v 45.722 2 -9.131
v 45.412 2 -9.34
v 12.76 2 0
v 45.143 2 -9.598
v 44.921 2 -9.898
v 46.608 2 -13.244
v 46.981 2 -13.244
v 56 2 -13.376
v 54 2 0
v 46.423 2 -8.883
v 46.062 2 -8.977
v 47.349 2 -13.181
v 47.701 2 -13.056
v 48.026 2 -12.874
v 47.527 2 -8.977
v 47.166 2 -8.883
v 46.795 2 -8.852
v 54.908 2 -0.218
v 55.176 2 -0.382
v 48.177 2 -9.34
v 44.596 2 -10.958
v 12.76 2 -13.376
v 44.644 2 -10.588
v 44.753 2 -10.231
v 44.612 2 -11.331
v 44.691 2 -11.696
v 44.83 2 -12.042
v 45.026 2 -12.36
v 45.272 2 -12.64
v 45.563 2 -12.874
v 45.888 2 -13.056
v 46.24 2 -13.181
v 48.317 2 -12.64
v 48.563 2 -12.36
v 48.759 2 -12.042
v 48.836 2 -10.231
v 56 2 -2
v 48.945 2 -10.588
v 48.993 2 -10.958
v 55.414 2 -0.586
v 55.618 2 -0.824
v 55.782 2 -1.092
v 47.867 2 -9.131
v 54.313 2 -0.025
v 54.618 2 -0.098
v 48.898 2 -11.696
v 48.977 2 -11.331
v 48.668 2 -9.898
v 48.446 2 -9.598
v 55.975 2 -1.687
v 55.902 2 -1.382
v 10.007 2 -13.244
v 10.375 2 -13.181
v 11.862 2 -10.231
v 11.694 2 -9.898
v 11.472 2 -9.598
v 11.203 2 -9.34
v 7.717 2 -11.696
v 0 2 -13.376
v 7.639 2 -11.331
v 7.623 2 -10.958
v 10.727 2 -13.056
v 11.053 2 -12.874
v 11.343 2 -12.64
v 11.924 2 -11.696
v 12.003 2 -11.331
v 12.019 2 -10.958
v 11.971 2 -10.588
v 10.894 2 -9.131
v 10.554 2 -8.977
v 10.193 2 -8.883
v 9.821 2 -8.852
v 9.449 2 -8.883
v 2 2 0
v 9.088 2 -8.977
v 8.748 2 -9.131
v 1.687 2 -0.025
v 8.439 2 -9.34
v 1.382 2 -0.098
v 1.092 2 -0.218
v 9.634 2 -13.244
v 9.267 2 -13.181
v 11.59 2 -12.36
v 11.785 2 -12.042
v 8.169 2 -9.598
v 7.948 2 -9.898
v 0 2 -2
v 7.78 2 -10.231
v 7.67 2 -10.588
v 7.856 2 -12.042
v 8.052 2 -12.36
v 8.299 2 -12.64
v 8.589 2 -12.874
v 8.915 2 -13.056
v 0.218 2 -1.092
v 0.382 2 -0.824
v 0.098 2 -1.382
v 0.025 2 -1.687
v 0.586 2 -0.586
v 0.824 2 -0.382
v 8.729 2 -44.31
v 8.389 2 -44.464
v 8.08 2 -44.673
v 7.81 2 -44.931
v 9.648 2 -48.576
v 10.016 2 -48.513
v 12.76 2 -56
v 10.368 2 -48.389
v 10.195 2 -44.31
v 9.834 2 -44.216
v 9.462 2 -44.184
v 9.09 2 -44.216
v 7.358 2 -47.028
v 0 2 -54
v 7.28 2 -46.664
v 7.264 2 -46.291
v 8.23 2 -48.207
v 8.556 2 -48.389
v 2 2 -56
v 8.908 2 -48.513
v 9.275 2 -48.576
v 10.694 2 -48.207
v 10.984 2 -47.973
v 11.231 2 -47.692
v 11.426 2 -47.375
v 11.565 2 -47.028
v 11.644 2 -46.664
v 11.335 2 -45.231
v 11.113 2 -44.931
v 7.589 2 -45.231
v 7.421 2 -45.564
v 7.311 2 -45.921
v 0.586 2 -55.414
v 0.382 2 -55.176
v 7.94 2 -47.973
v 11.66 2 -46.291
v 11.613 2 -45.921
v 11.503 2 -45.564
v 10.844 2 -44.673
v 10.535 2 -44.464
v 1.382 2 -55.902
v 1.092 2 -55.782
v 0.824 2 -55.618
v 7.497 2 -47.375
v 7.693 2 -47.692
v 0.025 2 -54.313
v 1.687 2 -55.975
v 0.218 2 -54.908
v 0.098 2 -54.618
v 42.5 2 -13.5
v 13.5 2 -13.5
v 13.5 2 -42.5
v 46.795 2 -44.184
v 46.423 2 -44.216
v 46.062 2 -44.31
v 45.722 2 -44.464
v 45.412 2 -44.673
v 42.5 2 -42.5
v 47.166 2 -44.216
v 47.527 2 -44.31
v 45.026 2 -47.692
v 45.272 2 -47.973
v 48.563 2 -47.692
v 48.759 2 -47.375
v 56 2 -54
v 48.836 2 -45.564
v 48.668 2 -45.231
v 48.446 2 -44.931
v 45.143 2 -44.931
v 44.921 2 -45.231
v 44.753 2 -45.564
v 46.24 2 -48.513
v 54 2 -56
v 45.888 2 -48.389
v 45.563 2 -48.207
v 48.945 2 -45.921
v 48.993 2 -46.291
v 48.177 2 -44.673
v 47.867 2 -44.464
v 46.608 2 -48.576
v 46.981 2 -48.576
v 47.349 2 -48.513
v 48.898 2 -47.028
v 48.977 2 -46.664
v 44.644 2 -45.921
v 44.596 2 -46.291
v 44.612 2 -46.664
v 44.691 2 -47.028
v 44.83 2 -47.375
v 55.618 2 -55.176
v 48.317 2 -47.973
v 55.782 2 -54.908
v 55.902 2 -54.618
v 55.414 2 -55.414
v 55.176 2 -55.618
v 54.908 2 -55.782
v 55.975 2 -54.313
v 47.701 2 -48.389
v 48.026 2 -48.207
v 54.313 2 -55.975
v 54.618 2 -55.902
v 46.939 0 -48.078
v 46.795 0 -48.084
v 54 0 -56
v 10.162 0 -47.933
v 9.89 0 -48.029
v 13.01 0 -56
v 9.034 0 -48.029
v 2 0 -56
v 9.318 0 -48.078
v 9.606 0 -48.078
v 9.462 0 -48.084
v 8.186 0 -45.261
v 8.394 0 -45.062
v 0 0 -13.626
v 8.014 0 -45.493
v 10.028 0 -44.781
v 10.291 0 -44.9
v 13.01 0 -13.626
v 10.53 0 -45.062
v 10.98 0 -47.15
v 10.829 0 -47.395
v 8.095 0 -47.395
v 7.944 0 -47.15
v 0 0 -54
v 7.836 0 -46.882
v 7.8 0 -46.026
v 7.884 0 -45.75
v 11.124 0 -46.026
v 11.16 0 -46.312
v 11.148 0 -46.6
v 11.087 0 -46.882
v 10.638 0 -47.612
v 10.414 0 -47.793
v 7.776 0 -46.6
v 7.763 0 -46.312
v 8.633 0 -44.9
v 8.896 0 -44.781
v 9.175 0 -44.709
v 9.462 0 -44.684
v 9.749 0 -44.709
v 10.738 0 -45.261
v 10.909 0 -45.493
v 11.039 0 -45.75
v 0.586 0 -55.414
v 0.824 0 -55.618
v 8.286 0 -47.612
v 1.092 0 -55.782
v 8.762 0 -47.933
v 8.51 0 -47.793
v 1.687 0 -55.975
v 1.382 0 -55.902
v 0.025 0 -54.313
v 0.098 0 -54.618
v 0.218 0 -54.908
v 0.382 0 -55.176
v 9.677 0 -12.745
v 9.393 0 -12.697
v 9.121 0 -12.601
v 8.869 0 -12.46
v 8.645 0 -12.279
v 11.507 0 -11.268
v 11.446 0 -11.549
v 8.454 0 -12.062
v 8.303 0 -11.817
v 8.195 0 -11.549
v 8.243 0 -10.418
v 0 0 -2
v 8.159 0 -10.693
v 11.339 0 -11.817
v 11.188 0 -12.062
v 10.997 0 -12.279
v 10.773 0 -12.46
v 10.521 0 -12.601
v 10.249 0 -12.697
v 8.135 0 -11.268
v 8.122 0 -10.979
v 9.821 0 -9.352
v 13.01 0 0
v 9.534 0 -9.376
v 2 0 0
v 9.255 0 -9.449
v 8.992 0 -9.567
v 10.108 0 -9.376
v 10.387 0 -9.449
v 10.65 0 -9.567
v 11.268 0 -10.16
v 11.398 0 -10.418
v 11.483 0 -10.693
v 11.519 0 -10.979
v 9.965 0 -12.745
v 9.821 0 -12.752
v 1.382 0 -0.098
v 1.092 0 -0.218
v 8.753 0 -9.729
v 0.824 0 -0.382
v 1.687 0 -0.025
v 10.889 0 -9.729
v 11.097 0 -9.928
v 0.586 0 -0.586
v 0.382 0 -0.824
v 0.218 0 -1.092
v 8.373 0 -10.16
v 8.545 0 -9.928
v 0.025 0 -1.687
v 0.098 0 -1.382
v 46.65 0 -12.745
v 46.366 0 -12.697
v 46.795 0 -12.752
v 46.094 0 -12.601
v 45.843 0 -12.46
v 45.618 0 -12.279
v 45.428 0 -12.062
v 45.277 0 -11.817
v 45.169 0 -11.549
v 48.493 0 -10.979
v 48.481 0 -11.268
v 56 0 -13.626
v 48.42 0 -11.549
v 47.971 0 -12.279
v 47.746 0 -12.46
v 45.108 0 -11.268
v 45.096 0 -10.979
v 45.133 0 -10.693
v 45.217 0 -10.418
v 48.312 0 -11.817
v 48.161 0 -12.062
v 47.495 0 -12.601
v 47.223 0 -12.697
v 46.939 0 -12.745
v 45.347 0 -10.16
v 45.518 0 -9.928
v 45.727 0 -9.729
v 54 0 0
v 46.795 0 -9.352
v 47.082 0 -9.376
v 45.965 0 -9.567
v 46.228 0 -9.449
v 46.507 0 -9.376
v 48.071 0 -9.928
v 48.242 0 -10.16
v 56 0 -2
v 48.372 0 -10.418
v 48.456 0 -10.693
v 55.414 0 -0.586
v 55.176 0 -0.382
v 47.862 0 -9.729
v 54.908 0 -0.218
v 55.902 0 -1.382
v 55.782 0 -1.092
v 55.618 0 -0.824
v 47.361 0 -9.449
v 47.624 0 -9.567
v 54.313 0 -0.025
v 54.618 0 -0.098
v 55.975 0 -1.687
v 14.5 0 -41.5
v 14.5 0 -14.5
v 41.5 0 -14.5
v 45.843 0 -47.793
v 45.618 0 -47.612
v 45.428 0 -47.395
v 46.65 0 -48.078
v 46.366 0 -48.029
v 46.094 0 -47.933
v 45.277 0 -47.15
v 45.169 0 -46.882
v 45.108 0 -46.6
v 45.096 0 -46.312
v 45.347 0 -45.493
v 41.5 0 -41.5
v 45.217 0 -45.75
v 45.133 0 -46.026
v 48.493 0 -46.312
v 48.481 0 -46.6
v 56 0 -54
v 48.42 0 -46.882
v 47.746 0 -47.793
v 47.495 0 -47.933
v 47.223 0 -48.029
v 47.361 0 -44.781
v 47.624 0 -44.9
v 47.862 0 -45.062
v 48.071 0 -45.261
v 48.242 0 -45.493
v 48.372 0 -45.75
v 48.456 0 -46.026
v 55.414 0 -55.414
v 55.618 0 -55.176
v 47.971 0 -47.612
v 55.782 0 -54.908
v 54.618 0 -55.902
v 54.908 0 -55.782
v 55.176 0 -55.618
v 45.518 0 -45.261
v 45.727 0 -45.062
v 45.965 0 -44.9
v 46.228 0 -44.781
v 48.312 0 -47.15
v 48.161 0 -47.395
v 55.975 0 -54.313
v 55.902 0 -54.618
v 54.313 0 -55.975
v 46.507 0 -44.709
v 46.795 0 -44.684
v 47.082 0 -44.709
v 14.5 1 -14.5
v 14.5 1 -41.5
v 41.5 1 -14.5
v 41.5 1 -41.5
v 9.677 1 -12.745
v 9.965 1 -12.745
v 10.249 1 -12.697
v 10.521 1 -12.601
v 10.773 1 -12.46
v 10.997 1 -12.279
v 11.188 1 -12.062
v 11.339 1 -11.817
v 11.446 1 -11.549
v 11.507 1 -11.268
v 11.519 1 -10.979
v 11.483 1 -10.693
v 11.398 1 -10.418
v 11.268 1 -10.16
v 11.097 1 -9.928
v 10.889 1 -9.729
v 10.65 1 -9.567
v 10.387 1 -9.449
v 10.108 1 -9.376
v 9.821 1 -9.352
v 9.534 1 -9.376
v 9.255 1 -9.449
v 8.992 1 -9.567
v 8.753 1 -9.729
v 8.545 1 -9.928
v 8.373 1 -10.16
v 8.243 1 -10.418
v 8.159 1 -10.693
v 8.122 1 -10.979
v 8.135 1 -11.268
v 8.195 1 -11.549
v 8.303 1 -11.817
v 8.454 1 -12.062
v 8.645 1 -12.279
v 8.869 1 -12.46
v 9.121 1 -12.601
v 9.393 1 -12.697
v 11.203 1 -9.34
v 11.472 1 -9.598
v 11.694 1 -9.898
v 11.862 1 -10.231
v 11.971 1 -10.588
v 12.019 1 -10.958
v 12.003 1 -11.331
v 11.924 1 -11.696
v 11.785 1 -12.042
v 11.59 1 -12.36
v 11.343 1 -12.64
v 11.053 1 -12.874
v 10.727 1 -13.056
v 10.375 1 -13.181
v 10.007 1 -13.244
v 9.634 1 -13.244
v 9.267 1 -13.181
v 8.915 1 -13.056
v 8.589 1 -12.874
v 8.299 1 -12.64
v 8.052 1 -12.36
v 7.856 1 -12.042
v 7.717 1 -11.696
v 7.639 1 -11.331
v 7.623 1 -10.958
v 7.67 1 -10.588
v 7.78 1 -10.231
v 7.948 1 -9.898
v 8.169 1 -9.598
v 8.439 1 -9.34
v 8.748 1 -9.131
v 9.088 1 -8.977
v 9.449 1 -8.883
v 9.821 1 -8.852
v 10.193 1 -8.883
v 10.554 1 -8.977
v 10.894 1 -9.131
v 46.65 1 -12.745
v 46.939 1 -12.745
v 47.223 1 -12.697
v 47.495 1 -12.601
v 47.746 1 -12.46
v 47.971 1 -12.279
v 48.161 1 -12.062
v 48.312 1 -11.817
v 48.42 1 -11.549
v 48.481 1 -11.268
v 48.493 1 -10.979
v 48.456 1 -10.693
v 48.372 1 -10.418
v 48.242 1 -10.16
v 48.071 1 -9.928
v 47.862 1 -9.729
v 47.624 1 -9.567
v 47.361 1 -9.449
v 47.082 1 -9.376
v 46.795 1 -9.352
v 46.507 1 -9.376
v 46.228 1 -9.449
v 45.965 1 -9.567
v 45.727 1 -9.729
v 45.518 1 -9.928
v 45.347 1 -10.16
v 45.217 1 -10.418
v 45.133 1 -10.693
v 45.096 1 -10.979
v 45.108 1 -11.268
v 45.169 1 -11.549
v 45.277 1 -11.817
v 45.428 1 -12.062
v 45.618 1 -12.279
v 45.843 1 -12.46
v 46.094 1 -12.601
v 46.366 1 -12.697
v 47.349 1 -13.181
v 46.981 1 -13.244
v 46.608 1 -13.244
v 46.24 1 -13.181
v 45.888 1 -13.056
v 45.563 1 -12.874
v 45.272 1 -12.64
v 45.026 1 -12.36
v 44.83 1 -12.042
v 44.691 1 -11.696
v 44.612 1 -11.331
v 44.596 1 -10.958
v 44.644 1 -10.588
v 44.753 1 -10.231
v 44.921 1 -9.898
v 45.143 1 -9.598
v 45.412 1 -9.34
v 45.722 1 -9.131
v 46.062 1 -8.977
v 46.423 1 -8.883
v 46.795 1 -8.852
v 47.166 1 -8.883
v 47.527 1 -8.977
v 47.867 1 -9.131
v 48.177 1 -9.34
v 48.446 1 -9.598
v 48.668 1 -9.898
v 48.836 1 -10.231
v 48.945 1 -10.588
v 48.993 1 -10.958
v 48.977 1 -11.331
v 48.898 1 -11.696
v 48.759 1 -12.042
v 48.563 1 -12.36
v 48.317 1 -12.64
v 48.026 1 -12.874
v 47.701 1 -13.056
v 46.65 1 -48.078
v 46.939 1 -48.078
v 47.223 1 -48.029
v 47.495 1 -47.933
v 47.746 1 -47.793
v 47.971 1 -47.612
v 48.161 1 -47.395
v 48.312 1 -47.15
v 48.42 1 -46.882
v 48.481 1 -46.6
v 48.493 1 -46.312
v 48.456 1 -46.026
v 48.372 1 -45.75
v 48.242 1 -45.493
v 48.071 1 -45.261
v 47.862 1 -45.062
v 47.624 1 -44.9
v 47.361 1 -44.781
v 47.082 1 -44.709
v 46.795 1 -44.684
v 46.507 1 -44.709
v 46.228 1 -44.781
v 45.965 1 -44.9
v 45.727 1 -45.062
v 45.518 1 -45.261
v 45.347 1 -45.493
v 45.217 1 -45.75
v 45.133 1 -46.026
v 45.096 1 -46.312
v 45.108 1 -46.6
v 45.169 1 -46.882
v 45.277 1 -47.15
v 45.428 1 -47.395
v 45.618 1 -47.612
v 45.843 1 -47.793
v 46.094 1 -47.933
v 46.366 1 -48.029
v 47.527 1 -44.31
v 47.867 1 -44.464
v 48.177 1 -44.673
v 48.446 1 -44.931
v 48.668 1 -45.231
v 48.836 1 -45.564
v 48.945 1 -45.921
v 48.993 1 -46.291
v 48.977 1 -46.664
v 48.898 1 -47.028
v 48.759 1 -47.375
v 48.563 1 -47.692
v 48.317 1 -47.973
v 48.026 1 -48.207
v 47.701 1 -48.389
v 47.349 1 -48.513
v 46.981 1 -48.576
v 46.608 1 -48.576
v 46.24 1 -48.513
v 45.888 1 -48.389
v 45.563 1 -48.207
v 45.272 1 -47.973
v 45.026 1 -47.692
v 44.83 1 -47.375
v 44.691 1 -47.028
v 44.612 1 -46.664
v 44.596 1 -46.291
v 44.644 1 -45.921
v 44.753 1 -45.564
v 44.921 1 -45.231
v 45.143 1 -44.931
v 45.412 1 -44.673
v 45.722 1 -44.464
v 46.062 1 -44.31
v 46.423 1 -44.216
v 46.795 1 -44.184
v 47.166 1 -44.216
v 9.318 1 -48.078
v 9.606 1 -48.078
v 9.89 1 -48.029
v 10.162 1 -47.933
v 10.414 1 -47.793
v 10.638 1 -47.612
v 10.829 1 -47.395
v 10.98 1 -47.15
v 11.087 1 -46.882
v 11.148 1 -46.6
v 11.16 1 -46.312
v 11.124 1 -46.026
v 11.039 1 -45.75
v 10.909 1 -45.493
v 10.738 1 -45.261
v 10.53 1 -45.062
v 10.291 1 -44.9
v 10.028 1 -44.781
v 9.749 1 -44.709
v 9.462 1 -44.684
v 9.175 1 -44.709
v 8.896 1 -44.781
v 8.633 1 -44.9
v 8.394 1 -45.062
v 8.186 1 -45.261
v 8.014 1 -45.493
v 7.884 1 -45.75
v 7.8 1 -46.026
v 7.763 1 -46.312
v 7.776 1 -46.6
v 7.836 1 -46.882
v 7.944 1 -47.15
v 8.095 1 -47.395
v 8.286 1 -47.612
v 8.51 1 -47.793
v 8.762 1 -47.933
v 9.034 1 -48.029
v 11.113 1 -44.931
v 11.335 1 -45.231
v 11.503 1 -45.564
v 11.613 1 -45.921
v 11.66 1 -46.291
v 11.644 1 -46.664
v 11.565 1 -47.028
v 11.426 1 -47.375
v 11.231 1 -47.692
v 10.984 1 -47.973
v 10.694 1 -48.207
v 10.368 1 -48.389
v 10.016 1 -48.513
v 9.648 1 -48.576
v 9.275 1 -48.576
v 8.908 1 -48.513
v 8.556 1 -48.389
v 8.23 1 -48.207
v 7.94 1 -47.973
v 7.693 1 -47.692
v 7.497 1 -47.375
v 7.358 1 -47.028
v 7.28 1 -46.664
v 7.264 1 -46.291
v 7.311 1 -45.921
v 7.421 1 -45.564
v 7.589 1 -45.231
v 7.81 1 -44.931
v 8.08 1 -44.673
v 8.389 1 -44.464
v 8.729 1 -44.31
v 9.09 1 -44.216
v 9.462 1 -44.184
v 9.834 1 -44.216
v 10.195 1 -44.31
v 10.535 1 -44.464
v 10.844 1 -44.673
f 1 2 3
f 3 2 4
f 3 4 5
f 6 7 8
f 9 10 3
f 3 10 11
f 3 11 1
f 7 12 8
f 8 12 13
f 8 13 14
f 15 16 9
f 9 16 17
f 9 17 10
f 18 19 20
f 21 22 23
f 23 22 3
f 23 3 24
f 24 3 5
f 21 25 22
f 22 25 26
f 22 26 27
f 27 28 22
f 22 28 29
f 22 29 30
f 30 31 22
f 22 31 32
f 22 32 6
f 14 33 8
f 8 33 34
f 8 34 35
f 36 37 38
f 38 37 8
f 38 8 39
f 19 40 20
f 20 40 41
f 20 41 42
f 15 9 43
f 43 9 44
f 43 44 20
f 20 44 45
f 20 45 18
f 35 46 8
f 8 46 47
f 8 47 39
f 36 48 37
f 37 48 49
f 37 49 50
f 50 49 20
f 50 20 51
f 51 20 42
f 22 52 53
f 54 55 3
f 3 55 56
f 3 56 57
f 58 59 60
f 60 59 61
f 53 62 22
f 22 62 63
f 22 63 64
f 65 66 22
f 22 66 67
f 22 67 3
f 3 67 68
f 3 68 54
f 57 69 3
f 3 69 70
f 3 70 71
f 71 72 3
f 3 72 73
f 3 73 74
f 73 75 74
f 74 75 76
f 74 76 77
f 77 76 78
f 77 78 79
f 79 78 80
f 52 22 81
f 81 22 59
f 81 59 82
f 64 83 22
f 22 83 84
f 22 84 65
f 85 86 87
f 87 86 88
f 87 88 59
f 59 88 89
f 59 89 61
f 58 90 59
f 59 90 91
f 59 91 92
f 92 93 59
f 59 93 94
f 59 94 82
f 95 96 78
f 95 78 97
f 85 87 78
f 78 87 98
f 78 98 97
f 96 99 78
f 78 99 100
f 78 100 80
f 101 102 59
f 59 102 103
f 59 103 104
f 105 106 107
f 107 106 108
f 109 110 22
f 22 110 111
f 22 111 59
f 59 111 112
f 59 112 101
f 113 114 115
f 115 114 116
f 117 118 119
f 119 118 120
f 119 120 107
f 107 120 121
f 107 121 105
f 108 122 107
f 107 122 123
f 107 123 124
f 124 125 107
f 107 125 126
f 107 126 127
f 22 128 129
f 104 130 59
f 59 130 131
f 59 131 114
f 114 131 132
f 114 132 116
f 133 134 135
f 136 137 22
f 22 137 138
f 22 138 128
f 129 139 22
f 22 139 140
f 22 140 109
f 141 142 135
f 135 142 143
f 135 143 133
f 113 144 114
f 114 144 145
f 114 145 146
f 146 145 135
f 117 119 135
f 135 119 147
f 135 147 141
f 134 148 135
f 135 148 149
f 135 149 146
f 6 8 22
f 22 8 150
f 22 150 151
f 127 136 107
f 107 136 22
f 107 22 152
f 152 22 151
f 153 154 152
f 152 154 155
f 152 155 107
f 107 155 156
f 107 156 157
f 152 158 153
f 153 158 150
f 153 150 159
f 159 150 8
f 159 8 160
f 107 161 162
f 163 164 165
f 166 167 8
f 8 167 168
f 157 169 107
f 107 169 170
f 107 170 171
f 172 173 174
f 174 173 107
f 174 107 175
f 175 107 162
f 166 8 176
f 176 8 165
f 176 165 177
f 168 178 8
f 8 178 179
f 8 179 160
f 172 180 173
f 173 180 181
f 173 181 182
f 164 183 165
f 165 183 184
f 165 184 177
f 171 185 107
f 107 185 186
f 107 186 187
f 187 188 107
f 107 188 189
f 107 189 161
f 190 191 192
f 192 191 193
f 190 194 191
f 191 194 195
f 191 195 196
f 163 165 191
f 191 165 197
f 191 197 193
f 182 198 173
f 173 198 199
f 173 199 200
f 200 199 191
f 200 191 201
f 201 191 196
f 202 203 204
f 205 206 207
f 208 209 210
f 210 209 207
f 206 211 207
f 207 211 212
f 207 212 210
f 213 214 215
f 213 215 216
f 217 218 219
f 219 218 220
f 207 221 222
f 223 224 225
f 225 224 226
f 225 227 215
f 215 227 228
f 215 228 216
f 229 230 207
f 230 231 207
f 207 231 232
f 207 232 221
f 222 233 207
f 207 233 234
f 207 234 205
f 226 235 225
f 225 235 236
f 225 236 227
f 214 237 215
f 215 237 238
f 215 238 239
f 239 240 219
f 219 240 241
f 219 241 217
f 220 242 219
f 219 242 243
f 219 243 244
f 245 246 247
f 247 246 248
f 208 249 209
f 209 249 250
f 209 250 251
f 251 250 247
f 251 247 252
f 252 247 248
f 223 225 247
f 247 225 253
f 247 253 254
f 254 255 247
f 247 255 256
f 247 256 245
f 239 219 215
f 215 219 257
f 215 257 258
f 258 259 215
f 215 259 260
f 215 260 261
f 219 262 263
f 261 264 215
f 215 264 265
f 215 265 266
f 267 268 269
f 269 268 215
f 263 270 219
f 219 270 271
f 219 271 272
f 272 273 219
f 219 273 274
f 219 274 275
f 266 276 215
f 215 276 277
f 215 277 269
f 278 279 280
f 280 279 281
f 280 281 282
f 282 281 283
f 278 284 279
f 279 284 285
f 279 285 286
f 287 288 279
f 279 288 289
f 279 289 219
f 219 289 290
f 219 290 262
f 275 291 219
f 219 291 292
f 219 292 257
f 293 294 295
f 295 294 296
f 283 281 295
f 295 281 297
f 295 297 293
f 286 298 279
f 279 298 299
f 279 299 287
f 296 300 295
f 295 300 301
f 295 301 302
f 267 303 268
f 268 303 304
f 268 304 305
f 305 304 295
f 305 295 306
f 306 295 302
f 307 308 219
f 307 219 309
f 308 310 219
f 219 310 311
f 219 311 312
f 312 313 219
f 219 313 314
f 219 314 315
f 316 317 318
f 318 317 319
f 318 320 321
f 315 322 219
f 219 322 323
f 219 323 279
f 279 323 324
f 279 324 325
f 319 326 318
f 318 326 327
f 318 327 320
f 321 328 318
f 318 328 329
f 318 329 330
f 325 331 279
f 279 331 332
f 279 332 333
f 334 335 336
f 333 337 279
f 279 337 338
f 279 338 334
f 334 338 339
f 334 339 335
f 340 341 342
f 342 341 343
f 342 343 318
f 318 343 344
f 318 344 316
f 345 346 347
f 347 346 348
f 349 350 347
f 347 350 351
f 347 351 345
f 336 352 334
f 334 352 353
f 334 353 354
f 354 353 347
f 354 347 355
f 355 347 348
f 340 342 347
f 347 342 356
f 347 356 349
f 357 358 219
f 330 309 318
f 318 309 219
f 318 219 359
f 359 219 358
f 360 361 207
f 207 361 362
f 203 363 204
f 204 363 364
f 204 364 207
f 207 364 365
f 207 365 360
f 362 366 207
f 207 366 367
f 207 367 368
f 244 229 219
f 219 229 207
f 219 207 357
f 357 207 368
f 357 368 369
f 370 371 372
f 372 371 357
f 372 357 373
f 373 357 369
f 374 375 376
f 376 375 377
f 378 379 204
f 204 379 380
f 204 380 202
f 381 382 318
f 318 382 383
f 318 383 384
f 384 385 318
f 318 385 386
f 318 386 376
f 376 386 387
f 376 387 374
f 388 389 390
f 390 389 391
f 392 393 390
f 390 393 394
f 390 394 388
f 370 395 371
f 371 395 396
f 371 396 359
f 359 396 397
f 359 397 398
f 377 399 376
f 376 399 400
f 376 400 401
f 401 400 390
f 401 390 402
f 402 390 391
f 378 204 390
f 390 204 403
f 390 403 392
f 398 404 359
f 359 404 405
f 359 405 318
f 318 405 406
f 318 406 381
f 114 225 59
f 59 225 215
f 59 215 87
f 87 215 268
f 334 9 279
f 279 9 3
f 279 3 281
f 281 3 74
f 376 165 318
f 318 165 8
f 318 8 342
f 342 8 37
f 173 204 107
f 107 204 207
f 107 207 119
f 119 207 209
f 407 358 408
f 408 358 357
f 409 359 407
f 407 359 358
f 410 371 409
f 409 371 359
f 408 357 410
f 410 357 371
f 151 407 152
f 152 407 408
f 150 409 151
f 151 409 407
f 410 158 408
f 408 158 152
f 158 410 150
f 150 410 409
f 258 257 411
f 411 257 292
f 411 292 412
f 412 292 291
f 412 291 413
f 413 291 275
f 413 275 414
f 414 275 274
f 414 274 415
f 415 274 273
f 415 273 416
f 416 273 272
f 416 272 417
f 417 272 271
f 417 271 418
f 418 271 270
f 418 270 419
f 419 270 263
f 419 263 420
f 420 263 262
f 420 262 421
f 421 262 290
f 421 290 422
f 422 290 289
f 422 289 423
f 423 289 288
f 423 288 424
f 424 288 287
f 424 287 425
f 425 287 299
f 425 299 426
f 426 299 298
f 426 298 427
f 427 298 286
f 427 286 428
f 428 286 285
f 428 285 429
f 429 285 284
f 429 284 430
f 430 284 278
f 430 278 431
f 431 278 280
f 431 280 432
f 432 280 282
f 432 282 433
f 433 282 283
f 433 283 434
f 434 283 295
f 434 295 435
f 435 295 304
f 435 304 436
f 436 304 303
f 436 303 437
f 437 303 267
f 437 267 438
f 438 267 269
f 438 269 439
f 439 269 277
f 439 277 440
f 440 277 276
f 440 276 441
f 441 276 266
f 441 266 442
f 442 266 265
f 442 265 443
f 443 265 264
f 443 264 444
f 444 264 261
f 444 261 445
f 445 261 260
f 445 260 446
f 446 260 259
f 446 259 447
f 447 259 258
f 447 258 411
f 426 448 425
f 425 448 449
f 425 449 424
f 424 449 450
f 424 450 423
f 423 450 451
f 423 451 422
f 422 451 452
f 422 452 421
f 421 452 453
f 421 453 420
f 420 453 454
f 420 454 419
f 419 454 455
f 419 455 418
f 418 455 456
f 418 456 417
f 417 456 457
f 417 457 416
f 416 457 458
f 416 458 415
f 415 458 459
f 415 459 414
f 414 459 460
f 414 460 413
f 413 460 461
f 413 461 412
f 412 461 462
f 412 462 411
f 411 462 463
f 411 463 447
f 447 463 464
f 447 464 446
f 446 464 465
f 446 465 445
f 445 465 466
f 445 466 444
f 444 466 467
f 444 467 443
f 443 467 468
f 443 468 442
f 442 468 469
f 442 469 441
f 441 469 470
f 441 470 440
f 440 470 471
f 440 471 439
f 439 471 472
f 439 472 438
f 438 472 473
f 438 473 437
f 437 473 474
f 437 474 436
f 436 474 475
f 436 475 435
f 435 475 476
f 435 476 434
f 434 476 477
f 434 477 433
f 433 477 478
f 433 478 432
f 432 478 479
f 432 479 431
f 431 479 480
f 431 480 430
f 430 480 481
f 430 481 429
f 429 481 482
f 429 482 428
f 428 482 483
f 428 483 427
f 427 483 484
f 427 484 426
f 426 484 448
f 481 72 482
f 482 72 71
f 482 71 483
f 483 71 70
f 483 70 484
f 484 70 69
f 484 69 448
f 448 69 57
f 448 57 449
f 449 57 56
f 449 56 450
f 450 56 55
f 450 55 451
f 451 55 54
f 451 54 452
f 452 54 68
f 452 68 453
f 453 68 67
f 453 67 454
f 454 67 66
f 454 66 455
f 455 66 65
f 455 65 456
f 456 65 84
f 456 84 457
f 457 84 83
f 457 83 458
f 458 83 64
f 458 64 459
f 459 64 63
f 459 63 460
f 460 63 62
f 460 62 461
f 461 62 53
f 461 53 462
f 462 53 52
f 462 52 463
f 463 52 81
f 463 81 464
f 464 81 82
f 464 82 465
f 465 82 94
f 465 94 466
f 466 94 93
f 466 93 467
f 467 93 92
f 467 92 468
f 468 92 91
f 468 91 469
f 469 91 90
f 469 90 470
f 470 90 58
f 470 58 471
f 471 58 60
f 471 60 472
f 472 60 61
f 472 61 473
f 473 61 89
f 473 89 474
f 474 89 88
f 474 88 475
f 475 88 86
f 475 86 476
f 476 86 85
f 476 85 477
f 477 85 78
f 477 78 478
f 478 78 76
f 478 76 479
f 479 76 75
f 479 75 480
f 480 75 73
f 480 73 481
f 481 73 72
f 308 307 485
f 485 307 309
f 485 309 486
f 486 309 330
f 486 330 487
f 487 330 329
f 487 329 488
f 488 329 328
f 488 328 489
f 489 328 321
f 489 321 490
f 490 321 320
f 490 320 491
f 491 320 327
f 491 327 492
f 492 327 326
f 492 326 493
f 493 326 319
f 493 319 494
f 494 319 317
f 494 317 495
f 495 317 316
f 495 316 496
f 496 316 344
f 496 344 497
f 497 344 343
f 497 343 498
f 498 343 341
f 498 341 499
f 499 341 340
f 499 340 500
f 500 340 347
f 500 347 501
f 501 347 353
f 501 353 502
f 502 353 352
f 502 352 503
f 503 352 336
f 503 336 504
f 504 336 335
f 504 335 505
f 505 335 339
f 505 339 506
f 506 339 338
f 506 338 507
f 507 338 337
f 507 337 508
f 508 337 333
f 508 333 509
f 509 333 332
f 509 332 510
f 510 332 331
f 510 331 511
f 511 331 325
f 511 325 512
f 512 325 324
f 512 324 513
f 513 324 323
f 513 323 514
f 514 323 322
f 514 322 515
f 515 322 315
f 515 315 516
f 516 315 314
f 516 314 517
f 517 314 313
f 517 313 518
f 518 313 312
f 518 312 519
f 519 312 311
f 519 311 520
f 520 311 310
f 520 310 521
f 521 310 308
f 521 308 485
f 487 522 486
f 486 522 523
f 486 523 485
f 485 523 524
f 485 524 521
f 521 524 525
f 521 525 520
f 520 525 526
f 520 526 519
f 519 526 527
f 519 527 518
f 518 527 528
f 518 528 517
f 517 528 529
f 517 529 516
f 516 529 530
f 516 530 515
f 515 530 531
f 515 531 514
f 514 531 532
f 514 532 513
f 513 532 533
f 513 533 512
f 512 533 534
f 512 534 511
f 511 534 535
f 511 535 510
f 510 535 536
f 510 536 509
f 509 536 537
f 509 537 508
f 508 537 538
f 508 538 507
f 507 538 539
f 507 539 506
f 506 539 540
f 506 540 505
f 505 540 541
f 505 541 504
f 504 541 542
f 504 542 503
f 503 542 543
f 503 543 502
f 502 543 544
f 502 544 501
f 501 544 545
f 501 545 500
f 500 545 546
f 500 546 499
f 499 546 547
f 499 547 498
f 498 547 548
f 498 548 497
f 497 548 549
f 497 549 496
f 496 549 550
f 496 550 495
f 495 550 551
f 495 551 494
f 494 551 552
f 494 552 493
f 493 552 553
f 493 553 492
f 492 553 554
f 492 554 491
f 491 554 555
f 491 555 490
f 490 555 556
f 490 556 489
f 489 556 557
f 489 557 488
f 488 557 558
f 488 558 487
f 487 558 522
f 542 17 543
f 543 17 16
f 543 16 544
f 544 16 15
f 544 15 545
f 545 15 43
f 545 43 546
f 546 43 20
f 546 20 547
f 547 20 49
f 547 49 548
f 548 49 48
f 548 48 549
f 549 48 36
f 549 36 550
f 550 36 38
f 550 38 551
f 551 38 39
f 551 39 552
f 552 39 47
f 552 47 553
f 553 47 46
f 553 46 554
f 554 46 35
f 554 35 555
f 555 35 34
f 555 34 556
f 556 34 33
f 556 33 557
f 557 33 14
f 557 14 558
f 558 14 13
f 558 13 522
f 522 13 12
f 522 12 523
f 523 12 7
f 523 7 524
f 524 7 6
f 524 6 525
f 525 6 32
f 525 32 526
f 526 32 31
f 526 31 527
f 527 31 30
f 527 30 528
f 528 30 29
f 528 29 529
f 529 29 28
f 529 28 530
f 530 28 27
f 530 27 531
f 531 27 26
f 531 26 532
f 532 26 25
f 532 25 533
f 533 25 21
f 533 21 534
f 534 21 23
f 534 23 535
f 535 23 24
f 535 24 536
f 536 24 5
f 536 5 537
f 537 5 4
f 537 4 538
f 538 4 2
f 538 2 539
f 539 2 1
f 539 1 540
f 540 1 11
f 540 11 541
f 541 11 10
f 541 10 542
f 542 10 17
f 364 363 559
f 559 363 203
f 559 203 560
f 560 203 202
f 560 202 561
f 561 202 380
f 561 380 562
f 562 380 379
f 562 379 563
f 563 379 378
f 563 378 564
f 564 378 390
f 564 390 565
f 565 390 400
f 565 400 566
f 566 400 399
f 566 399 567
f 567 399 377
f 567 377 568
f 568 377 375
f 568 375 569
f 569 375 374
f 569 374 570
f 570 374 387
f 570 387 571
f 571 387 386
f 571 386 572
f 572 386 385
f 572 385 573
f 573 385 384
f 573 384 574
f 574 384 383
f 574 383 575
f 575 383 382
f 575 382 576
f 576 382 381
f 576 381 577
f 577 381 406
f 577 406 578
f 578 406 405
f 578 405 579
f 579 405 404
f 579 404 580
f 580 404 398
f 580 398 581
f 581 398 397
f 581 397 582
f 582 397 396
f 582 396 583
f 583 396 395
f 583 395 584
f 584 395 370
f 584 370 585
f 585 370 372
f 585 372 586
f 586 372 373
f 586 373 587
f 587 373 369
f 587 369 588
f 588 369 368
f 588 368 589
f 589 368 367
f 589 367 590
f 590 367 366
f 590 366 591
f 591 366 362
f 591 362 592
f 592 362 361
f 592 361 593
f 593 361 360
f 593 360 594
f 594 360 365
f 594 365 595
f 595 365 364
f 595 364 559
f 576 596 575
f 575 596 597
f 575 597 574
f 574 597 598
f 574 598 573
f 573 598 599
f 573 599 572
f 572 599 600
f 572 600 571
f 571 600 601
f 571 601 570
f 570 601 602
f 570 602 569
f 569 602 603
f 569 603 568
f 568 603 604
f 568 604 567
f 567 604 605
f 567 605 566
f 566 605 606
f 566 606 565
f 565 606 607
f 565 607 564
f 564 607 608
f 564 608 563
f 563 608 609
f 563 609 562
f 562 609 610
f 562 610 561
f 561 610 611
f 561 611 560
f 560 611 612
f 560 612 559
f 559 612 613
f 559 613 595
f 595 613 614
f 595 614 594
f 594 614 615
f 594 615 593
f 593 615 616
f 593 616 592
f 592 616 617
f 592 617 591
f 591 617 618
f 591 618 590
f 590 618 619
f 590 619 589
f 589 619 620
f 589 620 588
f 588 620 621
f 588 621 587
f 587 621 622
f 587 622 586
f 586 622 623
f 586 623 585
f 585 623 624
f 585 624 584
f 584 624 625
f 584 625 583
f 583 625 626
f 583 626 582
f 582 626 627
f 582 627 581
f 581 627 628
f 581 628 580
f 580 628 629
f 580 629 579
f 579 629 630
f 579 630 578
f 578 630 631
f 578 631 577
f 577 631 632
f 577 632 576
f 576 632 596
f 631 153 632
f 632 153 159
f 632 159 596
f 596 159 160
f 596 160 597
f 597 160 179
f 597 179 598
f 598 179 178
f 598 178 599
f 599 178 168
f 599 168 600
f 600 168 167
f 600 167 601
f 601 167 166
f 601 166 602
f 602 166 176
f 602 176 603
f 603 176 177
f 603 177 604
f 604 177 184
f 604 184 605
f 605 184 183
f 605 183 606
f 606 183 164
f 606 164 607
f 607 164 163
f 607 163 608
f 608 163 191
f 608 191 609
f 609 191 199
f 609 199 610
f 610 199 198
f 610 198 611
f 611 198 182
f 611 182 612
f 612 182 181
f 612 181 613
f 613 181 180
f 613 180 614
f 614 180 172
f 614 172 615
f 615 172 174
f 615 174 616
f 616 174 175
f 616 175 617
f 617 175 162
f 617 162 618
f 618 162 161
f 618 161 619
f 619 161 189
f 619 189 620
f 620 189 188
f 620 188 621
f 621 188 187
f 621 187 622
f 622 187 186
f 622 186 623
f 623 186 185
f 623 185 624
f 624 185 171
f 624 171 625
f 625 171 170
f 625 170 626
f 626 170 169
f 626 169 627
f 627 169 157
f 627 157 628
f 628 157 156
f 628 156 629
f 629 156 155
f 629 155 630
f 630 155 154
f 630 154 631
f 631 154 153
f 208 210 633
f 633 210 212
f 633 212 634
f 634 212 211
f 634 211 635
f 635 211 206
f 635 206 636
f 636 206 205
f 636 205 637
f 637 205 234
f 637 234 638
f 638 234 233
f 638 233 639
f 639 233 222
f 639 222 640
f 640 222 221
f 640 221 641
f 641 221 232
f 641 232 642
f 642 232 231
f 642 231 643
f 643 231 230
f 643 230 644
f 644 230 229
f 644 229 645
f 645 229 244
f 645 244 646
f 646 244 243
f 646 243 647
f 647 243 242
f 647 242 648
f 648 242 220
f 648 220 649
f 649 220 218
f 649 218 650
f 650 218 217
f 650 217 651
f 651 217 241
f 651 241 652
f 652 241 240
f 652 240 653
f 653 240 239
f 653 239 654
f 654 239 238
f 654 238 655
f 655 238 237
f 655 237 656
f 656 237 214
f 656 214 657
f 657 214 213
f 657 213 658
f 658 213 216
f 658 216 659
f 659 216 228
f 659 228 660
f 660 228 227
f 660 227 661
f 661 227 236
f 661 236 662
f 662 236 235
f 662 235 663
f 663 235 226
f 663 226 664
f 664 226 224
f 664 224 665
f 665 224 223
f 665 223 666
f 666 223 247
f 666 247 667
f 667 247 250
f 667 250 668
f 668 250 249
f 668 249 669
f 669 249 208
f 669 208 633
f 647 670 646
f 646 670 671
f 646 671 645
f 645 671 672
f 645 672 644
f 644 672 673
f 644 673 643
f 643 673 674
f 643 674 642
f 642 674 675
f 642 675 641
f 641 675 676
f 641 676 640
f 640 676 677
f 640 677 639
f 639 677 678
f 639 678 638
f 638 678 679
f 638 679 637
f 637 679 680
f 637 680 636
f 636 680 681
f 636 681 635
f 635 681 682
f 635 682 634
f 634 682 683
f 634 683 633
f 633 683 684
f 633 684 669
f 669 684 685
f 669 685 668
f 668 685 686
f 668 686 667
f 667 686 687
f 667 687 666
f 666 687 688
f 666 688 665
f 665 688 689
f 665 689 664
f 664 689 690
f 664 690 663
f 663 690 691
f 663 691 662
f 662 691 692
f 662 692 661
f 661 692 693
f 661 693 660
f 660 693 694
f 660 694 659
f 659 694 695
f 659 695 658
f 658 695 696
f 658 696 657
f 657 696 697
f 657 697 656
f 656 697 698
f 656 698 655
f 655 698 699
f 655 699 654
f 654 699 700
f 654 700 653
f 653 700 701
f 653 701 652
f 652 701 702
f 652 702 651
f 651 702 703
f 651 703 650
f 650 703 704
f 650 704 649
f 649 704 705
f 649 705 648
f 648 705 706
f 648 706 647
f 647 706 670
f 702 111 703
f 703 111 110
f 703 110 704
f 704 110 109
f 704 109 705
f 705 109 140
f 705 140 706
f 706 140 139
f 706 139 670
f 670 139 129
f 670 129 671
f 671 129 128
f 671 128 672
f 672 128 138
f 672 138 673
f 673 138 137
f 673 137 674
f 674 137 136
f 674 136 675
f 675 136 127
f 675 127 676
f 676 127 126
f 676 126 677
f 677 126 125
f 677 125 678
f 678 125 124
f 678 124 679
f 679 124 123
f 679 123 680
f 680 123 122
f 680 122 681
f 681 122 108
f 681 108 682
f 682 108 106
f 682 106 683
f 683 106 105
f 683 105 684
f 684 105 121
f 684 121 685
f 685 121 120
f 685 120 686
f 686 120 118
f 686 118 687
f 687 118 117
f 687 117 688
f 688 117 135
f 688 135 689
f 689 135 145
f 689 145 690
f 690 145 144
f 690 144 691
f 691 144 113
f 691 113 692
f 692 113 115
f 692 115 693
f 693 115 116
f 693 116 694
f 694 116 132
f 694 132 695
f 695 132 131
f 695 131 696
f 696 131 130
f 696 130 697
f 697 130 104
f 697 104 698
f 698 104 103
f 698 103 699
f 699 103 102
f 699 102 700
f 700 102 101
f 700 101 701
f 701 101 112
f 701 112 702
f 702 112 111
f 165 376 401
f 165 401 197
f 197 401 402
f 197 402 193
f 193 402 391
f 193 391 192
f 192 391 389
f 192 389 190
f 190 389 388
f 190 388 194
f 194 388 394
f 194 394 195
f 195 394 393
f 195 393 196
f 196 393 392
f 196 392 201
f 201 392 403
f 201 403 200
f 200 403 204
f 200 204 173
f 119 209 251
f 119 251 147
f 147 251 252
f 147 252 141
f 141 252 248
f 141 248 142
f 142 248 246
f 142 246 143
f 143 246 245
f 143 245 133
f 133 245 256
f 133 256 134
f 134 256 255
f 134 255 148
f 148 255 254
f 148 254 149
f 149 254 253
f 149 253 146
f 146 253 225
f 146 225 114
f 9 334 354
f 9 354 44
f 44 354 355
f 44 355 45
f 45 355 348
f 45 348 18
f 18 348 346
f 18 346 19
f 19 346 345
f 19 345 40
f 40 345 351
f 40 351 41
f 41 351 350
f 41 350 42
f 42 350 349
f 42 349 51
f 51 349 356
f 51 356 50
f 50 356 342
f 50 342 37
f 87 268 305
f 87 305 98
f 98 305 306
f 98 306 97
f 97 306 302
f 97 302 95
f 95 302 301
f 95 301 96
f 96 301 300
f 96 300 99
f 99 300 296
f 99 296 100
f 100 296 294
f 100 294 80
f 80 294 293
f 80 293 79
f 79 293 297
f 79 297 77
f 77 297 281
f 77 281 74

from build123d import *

# Parameters (mm, degrees)
SKETCH1_W                                            = 56
SKETCH1_H                                            = 56
SKETCH1_W_2                                          = 27
SKETCH1_H_2                                          = 27
BOSS_EXTRUDE1_DEPTH                                  = 2
CHAMFER1_SIZE                                        = 1
CBORE_FOR_M3_CROSS_RECESS_PAN_HEAD_SCREW_D           = 3.4
CBORE_FOR_M3_CROSS_RECESS_PAN_HEAD_SCREW_DEPTH       = 5
CBORE_FOR_M3_CROSS_RECESS_PAN_HEAD_SCREW_CBORE_D     = 4.4
CBORE_FOR_M3_CROSS_RECESS_PAN_HEAD_SCREW_CBORE_DEPTH = 1
CBORE_FOR_M3_CROSS_RECESS_PAN_HEAD_SCREW_TIP         = 1.021463052
FILLET1_R                                            = 2


with BuildPart() as part:
    # Sketch1 → Boss-Extrude1 (new body)
    with BuildSketch(Plane(origin=(0, 0, 0), x_dir=(1, 0, 0), z_dir=(0, 1, 0))):
        with Locations((28, 28)):
            Rectangle(SKETCH1_W, SKETCH1_H)
        with Locations((28, 28)):
            Rectangle(SKETCH1_W_2, SKETCH1_H_2, mode=Mode.SUBTRACT)
    extrude(amount=BOSS_EXTRUDE1_DEPTH)

    # Chamfer1
    chamfer1_edges = [part.edges().sort_by_distance(p)[0] for p in [
        (14.5, 2, -28),
        (28, 2, -14.5),
        (41.5, 2, -28),
        (28, 2, -41.5),
    ]]
    chamfer(chamfer1_edges, length=CHAMFER1_SIZE)

    # CBORE for M3 Cross Recess Pan Head Screw1
    with Locations(Plane(origin=(0, 2, 0), x_dir=(1, 0, 0), z_dir=(0, 1, 0))):
        with Locations((9.461899873, 46.384256973), (46.794505385, 46.384256973), (46.794505385, 11.05161247), (9.820867233, 11.05161247)):
            CounterBoreHole(CBORE_FOR_M3_CROSS_RECESS_PAN_HEAD_SCREW_D / 2, CBORE_FOR_M3_CROSS_RECESS_PAN_HEAD_SCREW_CBORE_D / 2, CBORE_FOR_M3_CROSS_RECESS_PAN_HEAD_SCREW_CBORE_DEPTH, depth=CBORE_FOR_M3_CROSS_RECESS_PAN_HEAD_SCREW_DEPTH)
            with Locations((0, 0, -(CBORE_FOR_M3_CROSS_RECESS_PAN_HEAD_SCREW_DEPTH + CBORE_FOR_M3_CROSS_RECESS_PAN_HEAD_SCREW_TIP / 2))):  # 118° drill point
                Cone(0, CBORE_FOR_M3_CROSS_RECESS_PAN_HEAD_SCREW_D / 2, CBORE_FOR_M3_CROSS_RECESS_PAN_HEAD_SCREW_TIP, mode=Mode.SUBTRACT)

    # Fillet1
    fillet1_edges = [part.edges().sort_by_distance(p)[0] for p in [
        (0, 1, -56),
        (56, 1, -56),
        (56, 1, 0),
        (0, 1, 0),
    ]]
    fillet(fillet1_edges, radius=FILLET1_R)


solid = part.part
